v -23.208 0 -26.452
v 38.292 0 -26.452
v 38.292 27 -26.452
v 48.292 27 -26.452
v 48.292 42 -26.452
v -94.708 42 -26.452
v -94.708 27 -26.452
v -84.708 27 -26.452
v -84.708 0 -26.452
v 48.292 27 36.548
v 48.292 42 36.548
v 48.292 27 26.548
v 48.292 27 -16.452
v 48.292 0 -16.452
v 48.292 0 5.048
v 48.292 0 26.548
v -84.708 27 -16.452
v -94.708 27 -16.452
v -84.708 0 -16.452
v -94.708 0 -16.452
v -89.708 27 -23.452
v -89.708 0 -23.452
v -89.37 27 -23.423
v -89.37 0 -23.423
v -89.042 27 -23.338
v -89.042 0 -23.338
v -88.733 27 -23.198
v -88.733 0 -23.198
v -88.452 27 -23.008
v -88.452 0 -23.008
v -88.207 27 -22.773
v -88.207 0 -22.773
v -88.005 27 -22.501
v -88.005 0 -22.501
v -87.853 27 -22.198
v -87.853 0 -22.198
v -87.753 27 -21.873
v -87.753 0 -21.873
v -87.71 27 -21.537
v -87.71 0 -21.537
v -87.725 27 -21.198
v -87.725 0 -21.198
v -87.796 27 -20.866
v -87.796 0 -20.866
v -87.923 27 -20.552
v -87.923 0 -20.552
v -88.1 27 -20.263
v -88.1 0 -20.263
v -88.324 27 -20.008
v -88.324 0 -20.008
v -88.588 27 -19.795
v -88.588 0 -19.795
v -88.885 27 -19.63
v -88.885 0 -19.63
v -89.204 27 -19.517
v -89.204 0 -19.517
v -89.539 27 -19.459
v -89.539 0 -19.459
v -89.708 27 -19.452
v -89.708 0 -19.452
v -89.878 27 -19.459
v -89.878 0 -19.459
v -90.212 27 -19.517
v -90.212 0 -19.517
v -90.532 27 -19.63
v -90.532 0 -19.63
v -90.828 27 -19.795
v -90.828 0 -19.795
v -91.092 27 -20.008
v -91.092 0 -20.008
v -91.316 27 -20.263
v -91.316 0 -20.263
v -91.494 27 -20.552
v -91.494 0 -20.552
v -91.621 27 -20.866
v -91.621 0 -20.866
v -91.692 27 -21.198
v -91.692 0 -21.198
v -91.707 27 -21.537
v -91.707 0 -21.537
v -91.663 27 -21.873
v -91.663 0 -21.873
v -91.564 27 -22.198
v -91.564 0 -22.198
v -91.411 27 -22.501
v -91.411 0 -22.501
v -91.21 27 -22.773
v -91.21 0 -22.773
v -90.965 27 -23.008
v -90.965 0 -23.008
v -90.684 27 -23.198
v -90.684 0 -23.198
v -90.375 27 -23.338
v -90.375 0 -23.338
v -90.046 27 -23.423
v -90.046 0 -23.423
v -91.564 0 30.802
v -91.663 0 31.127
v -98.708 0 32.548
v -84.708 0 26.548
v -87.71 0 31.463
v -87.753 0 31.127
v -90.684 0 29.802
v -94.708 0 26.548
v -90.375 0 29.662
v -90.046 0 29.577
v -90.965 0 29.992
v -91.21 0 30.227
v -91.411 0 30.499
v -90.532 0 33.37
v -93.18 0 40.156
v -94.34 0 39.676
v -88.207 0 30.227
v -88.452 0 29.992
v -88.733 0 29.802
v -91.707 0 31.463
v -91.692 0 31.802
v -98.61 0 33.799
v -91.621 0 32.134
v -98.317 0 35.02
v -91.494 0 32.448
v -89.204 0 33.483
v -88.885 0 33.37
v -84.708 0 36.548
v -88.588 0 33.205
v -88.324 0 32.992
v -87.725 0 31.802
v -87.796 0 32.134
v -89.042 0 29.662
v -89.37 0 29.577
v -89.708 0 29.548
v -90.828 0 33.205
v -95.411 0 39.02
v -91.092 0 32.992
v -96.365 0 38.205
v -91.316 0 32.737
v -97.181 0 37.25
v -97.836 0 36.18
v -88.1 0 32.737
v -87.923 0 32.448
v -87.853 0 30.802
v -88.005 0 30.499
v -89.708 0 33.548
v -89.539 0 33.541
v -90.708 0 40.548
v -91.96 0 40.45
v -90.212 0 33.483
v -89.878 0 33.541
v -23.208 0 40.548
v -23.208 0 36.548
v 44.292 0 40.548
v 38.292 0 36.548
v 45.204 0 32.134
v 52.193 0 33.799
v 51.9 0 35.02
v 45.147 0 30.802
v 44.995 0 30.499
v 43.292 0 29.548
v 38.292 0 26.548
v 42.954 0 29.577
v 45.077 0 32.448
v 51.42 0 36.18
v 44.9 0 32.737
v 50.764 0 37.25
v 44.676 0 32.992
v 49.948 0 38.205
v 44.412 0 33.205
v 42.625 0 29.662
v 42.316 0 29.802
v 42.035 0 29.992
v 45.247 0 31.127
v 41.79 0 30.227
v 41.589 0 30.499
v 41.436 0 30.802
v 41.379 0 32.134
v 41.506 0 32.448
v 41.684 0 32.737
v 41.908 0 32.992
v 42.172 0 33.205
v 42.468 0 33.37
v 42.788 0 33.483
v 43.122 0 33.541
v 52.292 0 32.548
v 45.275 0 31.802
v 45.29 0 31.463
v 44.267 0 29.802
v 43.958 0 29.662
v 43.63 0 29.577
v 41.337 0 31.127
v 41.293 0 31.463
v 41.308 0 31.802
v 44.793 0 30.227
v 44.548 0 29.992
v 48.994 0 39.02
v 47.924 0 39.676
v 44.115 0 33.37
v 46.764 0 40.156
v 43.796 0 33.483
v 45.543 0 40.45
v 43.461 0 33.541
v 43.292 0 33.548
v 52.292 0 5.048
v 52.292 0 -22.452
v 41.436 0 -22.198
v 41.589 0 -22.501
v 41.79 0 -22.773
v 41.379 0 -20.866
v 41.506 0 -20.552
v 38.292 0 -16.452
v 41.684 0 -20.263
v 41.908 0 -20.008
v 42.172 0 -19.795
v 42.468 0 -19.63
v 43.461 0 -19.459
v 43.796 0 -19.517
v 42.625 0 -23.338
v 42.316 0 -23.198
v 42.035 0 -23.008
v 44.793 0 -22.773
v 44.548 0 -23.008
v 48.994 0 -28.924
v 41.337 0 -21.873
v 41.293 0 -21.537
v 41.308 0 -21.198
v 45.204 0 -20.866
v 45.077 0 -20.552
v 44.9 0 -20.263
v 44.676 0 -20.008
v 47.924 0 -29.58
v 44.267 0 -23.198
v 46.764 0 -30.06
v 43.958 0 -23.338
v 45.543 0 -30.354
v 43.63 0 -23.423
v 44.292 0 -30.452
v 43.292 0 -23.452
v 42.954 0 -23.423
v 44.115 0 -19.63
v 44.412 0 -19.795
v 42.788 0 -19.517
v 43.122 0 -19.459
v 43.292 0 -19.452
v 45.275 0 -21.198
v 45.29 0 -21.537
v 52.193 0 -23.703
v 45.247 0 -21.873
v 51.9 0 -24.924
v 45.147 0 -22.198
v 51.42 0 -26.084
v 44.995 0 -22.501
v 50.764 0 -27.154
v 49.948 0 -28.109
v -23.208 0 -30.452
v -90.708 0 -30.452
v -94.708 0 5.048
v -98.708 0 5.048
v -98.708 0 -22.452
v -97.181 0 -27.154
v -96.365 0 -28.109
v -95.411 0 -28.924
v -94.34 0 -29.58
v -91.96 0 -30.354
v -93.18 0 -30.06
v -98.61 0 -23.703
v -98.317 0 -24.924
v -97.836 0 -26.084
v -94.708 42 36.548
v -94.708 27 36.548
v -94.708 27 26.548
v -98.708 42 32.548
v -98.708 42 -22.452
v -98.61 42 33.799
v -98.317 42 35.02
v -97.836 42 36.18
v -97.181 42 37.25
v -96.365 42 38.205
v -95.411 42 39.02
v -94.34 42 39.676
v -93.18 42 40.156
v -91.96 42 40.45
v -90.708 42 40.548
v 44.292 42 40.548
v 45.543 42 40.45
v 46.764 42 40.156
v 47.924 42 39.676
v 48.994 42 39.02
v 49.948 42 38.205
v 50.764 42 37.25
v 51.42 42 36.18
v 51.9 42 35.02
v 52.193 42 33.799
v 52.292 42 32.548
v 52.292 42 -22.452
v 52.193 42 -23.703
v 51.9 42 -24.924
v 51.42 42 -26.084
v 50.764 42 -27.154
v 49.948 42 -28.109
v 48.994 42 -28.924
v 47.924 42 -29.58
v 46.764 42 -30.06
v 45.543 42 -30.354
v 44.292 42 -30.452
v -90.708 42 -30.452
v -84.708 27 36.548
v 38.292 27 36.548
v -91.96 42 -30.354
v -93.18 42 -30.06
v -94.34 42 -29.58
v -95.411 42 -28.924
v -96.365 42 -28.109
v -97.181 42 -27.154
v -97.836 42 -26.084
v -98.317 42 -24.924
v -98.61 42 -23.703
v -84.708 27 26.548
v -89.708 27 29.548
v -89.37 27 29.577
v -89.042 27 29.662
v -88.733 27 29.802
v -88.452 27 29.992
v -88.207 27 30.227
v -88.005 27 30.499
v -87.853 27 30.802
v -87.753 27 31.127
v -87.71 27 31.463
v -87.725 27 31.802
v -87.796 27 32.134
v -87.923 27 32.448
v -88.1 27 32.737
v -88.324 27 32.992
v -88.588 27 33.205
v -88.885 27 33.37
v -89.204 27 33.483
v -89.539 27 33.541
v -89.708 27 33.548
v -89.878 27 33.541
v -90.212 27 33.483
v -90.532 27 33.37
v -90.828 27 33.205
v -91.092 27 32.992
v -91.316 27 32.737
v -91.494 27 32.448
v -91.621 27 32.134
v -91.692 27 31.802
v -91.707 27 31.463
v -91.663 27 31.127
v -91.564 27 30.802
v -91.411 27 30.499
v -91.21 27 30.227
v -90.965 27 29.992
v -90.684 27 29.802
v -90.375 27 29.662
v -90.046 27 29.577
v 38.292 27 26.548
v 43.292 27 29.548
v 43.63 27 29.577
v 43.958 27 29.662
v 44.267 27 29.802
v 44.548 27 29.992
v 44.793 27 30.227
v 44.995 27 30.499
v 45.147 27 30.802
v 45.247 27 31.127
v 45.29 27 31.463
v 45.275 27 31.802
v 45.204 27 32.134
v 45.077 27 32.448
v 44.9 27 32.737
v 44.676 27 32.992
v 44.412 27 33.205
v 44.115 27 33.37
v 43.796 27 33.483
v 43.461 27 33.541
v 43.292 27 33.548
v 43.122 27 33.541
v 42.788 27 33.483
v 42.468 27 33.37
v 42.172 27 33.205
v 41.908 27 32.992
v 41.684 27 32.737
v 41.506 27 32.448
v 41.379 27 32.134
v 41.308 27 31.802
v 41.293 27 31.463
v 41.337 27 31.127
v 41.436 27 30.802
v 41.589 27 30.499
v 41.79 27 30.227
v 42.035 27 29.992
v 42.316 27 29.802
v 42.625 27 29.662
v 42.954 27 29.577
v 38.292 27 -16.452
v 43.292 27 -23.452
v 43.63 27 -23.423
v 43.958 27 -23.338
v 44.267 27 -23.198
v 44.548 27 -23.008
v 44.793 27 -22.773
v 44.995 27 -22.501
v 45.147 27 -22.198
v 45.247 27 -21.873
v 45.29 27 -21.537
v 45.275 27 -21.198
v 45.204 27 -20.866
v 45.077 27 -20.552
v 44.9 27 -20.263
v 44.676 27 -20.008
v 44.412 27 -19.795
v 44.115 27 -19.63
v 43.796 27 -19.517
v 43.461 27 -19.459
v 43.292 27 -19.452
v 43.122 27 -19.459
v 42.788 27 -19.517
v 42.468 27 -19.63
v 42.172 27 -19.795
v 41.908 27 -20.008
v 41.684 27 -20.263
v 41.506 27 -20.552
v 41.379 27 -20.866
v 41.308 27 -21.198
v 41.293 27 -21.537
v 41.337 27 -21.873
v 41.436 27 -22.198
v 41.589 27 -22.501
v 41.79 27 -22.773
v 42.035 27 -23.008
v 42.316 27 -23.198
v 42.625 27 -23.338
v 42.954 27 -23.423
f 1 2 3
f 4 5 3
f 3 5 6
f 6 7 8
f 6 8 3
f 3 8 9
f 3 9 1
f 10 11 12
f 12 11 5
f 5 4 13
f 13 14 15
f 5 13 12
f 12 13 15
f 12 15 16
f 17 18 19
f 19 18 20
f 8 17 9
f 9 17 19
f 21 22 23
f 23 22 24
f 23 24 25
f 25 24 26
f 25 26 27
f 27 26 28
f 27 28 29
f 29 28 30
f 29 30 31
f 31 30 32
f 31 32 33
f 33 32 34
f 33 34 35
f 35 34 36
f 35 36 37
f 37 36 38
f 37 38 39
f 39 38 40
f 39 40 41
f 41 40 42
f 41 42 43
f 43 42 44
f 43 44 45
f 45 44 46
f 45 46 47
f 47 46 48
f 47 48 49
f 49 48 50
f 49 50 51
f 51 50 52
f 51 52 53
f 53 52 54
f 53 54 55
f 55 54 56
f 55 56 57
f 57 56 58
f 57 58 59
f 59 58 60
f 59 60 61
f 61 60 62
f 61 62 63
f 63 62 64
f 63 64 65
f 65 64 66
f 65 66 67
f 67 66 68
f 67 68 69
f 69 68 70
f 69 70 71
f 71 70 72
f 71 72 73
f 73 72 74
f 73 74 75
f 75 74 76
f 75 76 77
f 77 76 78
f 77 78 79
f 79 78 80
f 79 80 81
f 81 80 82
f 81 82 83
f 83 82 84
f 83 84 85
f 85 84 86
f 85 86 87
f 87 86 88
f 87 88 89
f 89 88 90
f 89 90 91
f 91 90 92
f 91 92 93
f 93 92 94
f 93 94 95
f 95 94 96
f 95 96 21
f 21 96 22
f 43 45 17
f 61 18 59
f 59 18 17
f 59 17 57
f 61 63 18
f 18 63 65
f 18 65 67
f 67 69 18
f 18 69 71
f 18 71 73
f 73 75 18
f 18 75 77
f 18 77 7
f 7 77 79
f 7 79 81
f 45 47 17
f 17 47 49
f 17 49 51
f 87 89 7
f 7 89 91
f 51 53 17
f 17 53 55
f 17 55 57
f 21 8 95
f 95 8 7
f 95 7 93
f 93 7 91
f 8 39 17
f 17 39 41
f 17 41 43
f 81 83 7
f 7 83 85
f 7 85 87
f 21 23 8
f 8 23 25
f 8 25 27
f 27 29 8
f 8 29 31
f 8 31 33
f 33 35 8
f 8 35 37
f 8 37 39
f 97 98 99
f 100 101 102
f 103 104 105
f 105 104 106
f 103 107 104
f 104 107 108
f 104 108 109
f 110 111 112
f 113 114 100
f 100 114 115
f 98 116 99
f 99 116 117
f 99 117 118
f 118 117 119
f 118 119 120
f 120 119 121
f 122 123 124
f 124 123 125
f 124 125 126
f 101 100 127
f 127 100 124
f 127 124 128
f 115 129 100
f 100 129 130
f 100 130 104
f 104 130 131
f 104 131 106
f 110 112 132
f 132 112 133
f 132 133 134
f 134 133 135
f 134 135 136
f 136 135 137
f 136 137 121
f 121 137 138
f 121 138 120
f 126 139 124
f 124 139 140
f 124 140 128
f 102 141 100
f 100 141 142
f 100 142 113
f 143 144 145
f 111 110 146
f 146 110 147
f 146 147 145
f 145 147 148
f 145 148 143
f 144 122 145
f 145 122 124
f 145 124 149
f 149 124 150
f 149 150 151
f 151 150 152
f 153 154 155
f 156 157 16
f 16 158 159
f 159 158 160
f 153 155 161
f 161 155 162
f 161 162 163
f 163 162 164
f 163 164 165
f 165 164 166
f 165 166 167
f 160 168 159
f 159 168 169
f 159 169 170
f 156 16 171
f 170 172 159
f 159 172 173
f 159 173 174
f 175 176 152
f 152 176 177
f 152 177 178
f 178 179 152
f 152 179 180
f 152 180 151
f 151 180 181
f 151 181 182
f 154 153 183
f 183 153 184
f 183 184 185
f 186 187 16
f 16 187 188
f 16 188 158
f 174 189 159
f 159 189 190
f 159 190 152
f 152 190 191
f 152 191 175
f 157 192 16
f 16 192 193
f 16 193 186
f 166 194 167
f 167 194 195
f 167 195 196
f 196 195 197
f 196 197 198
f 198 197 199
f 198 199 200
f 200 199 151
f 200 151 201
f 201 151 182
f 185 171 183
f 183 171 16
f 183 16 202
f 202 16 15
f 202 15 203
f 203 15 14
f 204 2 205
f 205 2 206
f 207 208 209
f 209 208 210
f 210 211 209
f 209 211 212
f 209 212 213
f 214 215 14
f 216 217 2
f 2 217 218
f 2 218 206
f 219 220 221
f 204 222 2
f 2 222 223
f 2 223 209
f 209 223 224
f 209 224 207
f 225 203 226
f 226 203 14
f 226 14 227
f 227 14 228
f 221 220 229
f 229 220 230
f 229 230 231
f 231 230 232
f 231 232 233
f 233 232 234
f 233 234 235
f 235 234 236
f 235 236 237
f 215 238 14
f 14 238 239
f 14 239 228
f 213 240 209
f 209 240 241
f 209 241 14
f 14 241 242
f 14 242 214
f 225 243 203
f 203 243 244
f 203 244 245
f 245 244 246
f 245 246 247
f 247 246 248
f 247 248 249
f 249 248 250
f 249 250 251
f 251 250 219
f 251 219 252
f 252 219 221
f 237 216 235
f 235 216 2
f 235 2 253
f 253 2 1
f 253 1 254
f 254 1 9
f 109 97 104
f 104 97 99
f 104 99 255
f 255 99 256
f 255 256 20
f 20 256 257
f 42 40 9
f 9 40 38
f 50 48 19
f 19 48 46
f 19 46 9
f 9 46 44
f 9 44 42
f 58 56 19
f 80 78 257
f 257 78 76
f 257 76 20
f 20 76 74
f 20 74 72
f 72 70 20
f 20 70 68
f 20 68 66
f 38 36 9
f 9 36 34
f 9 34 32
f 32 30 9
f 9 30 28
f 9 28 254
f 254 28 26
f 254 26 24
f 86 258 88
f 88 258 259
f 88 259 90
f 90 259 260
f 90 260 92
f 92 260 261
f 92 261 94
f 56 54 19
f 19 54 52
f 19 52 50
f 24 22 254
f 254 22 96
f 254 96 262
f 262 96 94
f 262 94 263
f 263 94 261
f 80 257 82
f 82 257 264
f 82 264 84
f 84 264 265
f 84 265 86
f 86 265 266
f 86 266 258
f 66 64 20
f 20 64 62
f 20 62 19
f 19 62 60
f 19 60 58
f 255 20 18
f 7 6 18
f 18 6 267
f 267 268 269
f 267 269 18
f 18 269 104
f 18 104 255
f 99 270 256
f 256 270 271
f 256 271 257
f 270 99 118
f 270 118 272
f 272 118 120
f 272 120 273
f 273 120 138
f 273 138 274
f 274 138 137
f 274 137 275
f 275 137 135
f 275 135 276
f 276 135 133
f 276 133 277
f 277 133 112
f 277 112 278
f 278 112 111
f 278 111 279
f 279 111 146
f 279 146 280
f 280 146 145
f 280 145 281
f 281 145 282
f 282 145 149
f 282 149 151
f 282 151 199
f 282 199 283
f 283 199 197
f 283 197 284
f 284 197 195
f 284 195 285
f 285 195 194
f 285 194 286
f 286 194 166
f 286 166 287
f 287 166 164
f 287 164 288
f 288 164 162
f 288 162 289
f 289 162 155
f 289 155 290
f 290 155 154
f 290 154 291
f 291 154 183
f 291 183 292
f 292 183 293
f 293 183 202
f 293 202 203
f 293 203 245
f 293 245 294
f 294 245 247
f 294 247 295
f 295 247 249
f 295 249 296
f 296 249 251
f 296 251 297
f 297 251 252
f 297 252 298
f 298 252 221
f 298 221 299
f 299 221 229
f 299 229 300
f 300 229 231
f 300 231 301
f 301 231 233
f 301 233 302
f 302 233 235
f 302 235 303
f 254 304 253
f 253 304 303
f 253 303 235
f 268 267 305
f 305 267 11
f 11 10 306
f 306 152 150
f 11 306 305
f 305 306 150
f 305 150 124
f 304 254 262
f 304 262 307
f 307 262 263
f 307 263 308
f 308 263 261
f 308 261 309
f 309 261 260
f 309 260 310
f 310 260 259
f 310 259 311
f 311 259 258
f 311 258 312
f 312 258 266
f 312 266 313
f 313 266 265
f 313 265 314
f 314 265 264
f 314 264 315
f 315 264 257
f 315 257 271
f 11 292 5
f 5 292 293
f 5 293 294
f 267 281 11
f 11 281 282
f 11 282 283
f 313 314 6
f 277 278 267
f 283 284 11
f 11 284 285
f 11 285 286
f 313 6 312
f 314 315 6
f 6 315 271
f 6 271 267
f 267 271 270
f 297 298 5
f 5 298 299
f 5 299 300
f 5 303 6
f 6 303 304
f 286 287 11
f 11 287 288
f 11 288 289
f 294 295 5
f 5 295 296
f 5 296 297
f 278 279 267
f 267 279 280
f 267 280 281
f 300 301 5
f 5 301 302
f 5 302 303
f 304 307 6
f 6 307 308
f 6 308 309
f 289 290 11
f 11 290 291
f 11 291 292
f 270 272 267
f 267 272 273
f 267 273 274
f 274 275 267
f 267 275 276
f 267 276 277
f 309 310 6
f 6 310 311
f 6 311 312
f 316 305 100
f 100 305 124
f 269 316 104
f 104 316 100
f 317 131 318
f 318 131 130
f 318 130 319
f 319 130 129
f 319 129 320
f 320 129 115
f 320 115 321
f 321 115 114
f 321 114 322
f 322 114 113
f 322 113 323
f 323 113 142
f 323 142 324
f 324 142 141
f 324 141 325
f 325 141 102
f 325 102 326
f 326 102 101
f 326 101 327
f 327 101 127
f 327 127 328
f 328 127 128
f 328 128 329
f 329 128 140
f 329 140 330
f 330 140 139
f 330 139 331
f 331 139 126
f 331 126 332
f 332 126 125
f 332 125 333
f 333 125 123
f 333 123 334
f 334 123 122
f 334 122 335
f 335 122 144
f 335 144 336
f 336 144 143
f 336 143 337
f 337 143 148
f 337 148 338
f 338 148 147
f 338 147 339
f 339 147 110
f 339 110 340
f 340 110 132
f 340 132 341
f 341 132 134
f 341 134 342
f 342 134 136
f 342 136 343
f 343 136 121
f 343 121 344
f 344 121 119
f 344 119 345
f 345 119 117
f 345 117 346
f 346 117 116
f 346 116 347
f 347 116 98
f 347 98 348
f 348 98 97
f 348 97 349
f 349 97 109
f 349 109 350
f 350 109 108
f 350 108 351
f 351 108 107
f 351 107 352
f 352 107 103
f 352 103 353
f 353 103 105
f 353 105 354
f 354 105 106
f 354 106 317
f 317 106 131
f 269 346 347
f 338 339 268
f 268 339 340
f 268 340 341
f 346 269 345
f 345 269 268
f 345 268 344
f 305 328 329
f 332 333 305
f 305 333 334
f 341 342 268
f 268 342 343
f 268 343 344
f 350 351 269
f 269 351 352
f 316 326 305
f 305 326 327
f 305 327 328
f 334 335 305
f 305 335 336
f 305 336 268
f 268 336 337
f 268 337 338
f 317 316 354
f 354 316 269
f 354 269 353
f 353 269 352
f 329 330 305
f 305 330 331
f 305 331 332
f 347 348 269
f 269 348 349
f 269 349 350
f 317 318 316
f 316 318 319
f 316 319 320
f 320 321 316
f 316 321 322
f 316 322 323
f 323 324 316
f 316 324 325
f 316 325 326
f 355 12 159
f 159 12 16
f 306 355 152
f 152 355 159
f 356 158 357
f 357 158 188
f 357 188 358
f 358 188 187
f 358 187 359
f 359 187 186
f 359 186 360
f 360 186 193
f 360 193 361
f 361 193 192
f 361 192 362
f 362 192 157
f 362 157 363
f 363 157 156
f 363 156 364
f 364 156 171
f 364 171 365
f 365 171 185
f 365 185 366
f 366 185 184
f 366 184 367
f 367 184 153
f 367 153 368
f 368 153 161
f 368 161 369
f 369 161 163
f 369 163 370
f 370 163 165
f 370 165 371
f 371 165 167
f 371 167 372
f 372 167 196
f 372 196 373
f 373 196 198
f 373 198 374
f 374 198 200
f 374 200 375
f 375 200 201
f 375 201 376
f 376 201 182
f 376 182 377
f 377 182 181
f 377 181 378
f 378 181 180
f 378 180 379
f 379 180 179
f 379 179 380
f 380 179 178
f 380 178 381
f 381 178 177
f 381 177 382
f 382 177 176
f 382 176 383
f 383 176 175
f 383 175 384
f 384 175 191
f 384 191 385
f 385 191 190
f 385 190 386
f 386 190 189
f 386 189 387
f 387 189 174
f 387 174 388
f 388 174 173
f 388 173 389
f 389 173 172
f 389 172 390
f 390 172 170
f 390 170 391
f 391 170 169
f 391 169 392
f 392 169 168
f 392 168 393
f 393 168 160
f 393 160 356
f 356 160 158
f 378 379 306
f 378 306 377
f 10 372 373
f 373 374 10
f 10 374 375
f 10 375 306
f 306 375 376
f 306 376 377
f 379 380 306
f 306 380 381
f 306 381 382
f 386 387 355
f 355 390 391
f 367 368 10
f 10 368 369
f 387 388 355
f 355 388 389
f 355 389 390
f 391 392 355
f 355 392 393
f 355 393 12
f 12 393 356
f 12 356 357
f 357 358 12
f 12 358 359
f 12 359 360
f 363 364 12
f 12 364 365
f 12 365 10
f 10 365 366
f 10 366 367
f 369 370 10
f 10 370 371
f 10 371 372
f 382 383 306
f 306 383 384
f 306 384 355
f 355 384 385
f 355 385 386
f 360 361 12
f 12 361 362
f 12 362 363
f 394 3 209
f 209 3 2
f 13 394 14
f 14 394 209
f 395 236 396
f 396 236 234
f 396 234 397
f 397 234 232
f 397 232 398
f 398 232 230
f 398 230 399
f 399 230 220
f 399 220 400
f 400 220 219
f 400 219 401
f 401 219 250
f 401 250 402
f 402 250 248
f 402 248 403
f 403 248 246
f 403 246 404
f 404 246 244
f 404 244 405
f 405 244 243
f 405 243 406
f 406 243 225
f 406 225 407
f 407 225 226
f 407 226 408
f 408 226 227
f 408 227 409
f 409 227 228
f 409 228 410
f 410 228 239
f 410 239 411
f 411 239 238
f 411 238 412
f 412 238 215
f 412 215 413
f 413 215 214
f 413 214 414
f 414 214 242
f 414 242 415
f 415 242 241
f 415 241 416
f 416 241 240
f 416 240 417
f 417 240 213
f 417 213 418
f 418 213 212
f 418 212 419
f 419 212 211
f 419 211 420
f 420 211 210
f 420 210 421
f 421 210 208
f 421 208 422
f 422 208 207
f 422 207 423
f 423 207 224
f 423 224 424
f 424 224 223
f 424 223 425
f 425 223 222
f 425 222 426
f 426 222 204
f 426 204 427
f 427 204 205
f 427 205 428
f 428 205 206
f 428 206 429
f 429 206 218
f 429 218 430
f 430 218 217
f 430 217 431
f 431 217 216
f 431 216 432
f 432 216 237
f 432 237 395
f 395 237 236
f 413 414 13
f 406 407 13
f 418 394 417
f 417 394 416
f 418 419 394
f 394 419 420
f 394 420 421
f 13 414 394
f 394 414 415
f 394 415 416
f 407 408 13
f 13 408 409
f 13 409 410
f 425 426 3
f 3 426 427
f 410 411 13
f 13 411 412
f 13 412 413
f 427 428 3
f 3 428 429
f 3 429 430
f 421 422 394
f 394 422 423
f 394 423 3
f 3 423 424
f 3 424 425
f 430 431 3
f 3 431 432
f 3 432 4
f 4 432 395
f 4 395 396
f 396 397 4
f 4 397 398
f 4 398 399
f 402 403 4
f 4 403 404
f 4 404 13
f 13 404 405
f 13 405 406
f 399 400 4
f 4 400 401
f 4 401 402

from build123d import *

# Parameters (mm, degrees)
SKETCH1_W             = 10
SKETCH1_H             = 10
SKETCH1_R             = 2
BOSS_EXTRUDE5_DEPTH   = 27
BOSS_EXTRUDE5_2_DEPTH = 27
BOSS_EXTRUDE5_3_DEPTH = 27
BOSS_EXTRUDE5_4_DEPTH = 27
BOSS_EXTRUDE6_DEPTH   = 42


with BuildPart() as part:
    # Sketch1 → Boss-Extrude5 (new body)
    with BuildSketch(Plane(origin=(0, 0, 0), x_dir=(1, 0, 0), z_dir=(0, 1, 0))):
        with Locations((-89.708361573, 21.452000773)):
            Rectangle(SKETCH1_W, SKETCH1_H)
        with Locations((-89.708361573, 21.452000773)):
            Circle(SKETCH1_R, mode=Mode.SUBTRACT)
    extrude(amount=BOSS_EXTRUDE5_DEPTH)



with BuildPart() as body_2:
    # Sketch1 → Boss-Extrude5 2 (new body)
    with BuildSketch(Plane(origin=(0, 0, 0), x_dir=(1, 0, 0), z_dir=(0, 1, 0))):
        with Locations((43.291638427, 21.452000773)):
            Rectangle(SKETCH1_W, SKETCH1_H)
        with Locations((43.291638427, 21.452000773)):
            Circle(SKETCH1_R, mode=Mode.SUBTRACT)
    extrude(amount=BOSS_EXTRUDE5_2_DEPTH)


with BuildPart() as body_3:
    # Sketch1 → Boss-Extrude5 3 (new body)
    with BuildSketch(Plane(origin=(0, 0, 0), x_dir=(1, 0, 0), z_dir=(0, 1, 0))):
        with Locations((-89.708361573, -31.547999227)):
            Rectangle(SKETCH1_W, SKETCH1_H)
        with Locations((-89.708361573, -31.547999227)):
            Circle(SKETCH1_R, mode=Mode.SUBTRACT)
    extrude(amount=BOSS_EXTRUDE5_3_DEPTH)


with BuildPart() as body_4:
    # Sketch1 → Boss-Extrude5 4 (new body)
    with BuildSketch(Plane(origin=(0, 0, 0), x_dir=(1, 0, 0), z_dir=(0, 1, 0))):
        with Locations((43.291638427, -31.547999227)):
            Rectangle(SKETCH1_W, SKETCH1_H)
        with Locations((43.291638427, -31.547999227)):
            Circle(SKETCH1_R, mode=Mode.SUBTRACT)
    extrude(amount=BOSS_EXTRUDE5_4_DEPTH)


with BuildPart() as part_1:
    add(part.part)

    add(body_2.part)  # Boss-Extrude6 merges body 2

    add(body_3.part)  # Boss-Extrude6 merges body 3

    add(body_4.part)  # Boss-Extrude6 merges body 4
    # Sketch1<7> → Boss-Extrude6 (add)
    with BuildSketch(Plane(origin=(0, 0, 0), x_dir=(1, 0, 0), z_dir=(0, 1, 0))):
        with BuildLine():
            Line((44.291638427, 30.452000773), (-90.708361573, 30.452000773))
            ThreePointArc((-90.708361573, 30.452000773), (-96.365215823, 28.108855023), (-98.708361573, 22.452000773))
            Line((-98.708361573, 22.452000773), (-98.708361573, -32.547999227))
            ThreePointArc((-98.708361573, -32.547999227), (-96.365215823, -38.204853476), (-90.708361573, -40.547999227))
            Line((-90.708361573, -40.547999227), (44.291638427, -40.547999227))
            ThreePointArc((44.291638427, -40.547999227), (49.948492676, -38.204853476), (52.291638427, -32.547999227))
            Line((52.291638427, -32.547999227), (52.291638427, 22.452000773))
            ThreePointArc((52.291638427, 22.452000773), (49.948492676, 28.108855023), (44.291638427, 30.452000773))
        make_face()
        Polygon((-94.708361573, 16.452000773), (-94.708361573, 26.452000773), (-84.708361573, 26.452000773), (38.291638427, 26.452000773), (48.291638427, 26.452000773), (48.291638427, 16.452000773), (48.291638427, -26.547999227), (48.291638427, -36.547999227), (38.291638427, -36.547999227), (-84.708361573, -36.547999227), (-94.708361573, -36.547999227), (-94.708361573, -26.547999227), align=None, mode=Mode.SUBTRACT)
    extrude(amount=BOSS_EXTRUDE6_DEPTH)


solid = part_1.part
